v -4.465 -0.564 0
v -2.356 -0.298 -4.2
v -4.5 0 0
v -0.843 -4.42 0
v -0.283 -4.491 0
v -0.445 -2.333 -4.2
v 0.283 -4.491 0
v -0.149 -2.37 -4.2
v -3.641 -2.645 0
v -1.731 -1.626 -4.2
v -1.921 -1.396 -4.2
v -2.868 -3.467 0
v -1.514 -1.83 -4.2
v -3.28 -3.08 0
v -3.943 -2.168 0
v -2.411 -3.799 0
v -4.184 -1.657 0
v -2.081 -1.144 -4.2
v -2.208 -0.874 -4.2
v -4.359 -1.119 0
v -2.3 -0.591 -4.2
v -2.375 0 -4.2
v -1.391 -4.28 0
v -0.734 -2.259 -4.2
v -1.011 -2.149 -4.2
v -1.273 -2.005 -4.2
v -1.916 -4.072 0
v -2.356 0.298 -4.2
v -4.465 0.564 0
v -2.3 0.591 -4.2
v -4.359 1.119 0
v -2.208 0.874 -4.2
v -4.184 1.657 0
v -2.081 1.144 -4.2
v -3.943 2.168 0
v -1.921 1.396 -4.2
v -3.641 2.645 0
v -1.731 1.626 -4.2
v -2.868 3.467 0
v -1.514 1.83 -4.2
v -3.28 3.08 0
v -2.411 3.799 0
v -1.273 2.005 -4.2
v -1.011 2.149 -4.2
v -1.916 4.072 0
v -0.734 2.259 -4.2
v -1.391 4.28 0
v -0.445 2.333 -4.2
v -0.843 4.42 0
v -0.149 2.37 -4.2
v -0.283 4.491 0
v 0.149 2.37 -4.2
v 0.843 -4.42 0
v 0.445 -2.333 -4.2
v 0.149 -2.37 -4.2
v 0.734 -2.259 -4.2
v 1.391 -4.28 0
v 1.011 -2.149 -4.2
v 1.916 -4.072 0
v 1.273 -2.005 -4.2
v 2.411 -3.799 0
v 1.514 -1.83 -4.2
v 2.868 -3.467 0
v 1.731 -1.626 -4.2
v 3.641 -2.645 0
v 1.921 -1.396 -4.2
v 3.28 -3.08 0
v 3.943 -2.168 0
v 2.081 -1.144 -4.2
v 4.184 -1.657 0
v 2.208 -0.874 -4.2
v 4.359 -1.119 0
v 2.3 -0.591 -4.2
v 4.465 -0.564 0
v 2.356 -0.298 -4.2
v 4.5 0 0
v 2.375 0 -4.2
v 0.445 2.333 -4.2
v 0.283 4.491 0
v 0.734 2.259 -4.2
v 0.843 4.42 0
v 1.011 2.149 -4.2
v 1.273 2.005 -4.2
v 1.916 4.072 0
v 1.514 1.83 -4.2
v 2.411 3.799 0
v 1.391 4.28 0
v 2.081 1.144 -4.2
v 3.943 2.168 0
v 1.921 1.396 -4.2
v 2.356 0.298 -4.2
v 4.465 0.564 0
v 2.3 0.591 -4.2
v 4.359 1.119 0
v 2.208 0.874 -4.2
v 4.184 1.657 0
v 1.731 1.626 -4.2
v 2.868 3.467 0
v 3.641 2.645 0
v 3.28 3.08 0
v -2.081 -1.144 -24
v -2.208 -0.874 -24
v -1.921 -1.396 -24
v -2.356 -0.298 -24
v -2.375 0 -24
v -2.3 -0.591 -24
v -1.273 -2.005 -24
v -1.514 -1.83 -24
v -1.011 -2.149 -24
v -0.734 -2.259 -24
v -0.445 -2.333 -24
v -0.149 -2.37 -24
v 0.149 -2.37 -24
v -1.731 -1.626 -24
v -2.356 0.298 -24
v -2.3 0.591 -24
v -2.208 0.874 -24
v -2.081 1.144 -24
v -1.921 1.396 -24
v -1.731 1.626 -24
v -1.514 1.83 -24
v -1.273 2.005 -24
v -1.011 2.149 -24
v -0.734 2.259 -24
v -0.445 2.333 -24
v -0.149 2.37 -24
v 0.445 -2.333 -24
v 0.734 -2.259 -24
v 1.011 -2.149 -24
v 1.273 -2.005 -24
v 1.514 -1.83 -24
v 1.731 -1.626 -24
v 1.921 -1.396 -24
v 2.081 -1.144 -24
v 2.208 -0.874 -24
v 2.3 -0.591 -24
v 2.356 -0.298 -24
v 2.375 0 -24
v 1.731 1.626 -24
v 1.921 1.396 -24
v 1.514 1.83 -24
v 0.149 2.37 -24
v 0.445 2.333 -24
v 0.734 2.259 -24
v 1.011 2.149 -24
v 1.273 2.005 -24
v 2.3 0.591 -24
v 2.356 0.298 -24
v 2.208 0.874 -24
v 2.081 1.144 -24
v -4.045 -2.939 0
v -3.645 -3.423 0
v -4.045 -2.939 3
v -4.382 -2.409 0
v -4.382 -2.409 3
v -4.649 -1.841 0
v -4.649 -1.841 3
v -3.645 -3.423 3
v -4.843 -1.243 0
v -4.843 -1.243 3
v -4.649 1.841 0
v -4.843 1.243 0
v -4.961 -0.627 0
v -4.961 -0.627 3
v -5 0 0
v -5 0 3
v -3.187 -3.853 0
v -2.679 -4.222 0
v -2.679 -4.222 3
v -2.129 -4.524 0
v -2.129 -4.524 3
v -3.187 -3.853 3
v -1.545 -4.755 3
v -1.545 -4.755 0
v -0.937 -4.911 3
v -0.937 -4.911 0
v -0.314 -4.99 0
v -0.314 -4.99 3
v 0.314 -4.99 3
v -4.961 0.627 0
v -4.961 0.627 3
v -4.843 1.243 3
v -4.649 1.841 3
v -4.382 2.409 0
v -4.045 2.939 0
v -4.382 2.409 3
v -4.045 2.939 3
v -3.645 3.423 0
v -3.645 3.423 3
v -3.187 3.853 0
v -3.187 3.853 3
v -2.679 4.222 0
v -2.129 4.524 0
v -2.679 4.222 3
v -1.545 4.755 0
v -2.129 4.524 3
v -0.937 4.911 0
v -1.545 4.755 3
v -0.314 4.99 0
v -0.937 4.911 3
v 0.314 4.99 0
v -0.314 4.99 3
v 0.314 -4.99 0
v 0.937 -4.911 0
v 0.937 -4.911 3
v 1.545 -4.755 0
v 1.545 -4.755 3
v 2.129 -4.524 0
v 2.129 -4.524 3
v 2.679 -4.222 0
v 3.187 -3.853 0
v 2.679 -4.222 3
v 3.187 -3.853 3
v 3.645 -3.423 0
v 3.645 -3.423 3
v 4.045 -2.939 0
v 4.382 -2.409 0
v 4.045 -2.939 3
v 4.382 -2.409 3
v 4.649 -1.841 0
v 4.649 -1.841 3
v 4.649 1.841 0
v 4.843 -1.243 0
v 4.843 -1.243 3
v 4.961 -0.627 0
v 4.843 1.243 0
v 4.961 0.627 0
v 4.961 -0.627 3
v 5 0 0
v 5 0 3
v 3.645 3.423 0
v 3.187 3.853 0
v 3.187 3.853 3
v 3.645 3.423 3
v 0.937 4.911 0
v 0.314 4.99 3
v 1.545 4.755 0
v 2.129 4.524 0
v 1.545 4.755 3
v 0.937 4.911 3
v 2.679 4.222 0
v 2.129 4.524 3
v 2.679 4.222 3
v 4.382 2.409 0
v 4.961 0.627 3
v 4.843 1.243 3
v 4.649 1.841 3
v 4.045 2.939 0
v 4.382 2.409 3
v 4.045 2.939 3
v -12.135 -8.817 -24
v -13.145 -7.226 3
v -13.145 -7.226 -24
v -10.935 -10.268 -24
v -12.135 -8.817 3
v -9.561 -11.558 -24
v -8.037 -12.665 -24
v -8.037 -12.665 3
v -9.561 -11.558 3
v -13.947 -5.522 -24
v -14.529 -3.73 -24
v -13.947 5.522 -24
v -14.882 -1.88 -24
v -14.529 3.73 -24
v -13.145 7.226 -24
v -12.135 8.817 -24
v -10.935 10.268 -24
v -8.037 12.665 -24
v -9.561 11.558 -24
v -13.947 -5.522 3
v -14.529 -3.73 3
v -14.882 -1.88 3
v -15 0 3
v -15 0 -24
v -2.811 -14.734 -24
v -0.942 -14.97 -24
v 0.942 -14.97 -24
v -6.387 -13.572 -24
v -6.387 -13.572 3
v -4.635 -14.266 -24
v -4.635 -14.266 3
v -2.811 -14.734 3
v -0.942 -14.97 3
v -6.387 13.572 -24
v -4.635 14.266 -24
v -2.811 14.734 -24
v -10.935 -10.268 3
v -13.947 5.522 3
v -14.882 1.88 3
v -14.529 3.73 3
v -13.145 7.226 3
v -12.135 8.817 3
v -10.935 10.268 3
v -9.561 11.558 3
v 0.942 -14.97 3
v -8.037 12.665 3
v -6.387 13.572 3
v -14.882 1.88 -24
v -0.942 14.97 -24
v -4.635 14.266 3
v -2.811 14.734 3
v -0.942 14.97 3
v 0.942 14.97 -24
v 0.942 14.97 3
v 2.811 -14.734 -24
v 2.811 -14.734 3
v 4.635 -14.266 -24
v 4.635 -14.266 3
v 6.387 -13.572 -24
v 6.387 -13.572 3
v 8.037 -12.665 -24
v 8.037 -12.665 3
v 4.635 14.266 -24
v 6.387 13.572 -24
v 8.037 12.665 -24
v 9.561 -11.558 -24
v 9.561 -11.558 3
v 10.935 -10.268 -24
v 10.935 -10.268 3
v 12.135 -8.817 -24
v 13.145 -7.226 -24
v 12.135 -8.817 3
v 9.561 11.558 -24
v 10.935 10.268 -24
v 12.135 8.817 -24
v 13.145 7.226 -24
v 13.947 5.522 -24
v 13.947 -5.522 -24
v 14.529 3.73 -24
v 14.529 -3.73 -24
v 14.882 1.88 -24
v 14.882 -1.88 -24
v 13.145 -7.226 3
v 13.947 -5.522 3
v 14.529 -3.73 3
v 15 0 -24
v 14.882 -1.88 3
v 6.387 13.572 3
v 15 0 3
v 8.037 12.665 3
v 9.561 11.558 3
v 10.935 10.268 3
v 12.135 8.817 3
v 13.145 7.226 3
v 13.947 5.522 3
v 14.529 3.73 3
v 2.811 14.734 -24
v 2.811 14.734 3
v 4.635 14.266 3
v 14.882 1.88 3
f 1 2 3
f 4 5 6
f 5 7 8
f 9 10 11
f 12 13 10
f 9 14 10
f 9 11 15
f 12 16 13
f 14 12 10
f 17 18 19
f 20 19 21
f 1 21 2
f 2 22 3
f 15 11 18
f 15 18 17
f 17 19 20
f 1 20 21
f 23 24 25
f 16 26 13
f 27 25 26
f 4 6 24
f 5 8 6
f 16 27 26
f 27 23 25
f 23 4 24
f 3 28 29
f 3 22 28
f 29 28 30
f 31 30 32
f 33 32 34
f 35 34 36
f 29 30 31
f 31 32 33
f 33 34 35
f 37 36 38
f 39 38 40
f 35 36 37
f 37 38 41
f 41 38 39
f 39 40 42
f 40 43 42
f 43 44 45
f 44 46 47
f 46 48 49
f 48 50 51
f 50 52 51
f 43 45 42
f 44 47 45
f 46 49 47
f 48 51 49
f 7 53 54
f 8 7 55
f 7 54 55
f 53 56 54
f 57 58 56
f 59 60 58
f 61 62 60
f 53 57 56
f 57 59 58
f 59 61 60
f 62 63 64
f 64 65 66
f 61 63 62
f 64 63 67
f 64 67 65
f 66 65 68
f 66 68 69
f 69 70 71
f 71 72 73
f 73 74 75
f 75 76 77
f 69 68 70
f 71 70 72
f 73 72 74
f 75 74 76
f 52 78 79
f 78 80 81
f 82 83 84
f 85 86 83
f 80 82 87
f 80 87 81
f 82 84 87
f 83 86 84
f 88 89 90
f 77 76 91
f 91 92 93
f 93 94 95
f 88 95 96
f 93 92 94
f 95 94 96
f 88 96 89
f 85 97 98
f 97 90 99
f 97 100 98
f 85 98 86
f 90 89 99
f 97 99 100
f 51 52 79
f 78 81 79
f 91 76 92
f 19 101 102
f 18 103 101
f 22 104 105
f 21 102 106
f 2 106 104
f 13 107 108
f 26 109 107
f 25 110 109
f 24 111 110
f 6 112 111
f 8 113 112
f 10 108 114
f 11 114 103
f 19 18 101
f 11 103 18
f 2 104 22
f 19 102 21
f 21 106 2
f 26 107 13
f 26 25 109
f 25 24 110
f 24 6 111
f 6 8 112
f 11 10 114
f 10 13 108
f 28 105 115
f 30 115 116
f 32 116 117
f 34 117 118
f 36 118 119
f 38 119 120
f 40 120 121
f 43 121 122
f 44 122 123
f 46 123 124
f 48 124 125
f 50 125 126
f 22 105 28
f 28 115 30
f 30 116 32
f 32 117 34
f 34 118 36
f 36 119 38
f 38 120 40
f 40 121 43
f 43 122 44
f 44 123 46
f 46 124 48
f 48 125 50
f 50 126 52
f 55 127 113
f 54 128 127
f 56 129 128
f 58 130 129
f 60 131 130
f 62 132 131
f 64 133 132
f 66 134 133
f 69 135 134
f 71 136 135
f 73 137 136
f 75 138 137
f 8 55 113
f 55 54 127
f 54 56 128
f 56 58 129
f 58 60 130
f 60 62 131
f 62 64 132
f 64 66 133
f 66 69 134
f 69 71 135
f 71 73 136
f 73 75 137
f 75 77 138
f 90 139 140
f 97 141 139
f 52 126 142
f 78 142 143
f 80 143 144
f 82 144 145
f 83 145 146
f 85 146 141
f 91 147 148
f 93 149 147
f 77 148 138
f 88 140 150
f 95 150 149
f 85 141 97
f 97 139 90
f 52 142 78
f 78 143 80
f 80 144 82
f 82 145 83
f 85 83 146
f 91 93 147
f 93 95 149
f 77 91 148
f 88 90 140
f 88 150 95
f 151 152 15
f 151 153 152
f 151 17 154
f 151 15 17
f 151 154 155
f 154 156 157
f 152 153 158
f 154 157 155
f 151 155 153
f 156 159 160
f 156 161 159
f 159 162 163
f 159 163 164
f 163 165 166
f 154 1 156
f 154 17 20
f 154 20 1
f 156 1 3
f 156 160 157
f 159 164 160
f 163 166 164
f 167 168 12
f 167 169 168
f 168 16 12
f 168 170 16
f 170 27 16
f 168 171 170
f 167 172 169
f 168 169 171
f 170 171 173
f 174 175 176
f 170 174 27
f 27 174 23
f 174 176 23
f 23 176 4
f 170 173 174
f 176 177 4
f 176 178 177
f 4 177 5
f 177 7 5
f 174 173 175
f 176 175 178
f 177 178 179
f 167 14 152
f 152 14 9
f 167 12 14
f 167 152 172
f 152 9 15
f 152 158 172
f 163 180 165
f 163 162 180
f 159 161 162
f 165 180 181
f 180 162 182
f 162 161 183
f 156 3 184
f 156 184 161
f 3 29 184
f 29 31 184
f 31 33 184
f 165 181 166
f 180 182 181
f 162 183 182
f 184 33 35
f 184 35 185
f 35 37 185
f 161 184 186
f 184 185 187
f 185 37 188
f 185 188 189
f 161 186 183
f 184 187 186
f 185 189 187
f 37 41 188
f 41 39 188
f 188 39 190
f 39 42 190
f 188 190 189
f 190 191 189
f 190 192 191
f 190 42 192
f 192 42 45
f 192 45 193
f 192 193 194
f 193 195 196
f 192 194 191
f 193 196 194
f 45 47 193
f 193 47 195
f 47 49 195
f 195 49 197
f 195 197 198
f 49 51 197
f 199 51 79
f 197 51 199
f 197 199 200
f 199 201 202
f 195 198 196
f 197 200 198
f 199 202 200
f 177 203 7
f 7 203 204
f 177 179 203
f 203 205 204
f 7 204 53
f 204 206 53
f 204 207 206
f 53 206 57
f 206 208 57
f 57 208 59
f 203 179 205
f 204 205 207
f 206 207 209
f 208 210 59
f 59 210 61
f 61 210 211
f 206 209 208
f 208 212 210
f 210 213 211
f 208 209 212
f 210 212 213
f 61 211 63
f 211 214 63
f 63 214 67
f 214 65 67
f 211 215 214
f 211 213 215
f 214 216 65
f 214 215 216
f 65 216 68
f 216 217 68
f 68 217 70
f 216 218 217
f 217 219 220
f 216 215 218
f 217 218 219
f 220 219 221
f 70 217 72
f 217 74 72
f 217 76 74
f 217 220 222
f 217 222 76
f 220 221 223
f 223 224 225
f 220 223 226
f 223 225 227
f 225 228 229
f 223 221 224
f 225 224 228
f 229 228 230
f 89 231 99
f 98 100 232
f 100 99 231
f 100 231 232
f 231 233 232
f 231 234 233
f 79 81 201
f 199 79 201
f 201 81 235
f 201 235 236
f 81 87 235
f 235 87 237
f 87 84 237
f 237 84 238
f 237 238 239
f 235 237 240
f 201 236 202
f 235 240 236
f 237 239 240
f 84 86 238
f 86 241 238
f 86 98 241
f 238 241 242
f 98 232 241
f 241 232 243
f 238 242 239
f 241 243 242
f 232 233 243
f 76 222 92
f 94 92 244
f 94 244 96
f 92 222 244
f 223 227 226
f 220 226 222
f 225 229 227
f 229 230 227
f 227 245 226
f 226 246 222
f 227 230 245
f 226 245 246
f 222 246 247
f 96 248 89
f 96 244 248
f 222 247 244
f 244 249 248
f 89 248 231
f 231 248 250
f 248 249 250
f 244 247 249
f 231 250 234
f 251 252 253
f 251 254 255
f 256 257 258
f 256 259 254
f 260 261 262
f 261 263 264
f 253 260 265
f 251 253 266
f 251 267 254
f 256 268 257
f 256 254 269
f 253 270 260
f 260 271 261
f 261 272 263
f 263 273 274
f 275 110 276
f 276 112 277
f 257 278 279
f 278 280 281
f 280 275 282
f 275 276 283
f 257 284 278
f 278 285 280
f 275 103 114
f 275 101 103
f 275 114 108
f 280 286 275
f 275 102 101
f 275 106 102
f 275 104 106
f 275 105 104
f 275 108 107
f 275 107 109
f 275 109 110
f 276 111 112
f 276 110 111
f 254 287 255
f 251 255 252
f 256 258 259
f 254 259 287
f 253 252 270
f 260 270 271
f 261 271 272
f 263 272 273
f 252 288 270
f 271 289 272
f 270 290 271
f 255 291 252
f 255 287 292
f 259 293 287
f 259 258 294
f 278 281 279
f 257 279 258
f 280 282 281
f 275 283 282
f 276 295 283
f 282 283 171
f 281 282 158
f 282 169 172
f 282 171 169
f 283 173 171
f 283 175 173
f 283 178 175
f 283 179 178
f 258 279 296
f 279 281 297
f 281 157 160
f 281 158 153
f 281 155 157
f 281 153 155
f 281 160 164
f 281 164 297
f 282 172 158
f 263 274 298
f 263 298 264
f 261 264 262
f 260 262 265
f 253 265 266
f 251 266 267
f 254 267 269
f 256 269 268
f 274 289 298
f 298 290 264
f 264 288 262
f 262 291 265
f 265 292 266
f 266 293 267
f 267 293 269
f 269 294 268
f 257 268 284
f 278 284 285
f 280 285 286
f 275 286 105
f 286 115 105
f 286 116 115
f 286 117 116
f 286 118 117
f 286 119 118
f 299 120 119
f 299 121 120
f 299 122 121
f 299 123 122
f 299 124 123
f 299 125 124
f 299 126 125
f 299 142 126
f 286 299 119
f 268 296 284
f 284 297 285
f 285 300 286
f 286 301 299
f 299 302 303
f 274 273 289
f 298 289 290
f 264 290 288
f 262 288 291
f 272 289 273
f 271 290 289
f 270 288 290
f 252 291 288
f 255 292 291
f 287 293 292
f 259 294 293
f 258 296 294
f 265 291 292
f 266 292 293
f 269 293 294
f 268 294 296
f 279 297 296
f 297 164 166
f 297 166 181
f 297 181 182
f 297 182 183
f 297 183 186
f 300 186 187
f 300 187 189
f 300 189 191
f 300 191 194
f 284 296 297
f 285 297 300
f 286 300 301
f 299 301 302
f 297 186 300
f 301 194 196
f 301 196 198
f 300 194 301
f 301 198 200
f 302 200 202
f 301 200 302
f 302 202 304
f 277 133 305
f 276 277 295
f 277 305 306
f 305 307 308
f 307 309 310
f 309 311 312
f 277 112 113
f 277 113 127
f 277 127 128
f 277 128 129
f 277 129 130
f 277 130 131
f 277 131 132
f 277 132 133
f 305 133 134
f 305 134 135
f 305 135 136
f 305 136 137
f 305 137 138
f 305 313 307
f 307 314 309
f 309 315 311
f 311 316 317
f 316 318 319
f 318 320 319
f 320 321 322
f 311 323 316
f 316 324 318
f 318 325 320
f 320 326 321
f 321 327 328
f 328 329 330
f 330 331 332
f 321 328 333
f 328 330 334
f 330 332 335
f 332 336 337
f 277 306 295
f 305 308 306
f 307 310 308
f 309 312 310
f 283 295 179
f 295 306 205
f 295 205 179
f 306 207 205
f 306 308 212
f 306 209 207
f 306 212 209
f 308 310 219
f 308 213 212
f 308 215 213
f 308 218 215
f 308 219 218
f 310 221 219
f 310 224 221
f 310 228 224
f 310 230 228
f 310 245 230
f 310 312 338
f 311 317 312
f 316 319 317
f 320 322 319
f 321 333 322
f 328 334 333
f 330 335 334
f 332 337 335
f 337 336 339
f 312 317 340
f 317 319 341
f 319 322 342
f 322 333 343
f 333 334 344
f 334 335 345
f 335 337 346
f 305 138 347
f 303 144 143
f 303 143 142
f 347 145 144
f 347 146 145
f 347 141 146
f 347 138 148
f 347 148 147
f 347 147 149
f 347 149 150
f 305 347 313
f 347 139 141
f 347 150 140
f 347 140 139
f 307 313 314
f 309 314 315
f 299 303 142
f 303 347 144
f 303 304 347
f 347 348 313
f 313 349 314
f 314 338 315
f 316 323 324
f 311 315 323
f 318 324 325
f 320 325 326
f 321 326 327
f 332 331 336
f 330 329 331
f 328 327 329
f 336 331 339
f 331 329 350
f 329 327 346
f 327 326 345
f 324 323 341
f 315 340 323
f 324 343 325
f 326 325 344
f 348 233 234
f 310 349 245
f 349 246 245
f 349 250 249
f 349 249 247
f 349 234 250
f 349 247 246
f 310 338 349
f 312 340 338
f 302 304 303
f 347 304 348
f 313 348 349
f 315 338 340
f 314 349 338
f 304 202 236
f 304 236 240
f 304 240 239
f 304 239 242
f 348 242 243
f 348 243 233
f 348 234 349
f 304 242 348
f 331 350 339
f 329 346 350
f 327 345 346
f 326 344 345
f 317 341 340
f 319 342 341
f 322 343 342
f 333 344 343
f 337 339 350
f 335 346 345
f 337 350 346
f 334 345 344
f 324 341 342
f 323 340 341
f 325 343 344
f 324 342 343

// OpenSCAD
$fn = 50;

difference() {
	union() {
		translate(v = [0, 0, -24.0]) {
			cylinder(h = 27, r = 15.0);
		}
	}
	union() {
		translate(v = [0, 0, 0]) {
			rotate(a = [0, 0, 0]) {
				difference() {
					union() {
						translate(v = [0, 0, -27.0]) {
							cylinder(h = 27, r = 2.25);
						}
						translate(v = [0, 0, -4.2]) {
							cylinder(h = 4.2, r1 = 2.375, r2 = 4.5);
						}
						translate(v = [0, 0, -27.0]) {
							cylinder(h = 27, r = 2.375);
						}
						translate(v = [0, 0, -27.0]) {
							cylinder(h = 27, r = 2.25);
						}
					}
					union();
				}
			}
		}
		#cylinder(h = 3, r = 5.0);
	}
}
